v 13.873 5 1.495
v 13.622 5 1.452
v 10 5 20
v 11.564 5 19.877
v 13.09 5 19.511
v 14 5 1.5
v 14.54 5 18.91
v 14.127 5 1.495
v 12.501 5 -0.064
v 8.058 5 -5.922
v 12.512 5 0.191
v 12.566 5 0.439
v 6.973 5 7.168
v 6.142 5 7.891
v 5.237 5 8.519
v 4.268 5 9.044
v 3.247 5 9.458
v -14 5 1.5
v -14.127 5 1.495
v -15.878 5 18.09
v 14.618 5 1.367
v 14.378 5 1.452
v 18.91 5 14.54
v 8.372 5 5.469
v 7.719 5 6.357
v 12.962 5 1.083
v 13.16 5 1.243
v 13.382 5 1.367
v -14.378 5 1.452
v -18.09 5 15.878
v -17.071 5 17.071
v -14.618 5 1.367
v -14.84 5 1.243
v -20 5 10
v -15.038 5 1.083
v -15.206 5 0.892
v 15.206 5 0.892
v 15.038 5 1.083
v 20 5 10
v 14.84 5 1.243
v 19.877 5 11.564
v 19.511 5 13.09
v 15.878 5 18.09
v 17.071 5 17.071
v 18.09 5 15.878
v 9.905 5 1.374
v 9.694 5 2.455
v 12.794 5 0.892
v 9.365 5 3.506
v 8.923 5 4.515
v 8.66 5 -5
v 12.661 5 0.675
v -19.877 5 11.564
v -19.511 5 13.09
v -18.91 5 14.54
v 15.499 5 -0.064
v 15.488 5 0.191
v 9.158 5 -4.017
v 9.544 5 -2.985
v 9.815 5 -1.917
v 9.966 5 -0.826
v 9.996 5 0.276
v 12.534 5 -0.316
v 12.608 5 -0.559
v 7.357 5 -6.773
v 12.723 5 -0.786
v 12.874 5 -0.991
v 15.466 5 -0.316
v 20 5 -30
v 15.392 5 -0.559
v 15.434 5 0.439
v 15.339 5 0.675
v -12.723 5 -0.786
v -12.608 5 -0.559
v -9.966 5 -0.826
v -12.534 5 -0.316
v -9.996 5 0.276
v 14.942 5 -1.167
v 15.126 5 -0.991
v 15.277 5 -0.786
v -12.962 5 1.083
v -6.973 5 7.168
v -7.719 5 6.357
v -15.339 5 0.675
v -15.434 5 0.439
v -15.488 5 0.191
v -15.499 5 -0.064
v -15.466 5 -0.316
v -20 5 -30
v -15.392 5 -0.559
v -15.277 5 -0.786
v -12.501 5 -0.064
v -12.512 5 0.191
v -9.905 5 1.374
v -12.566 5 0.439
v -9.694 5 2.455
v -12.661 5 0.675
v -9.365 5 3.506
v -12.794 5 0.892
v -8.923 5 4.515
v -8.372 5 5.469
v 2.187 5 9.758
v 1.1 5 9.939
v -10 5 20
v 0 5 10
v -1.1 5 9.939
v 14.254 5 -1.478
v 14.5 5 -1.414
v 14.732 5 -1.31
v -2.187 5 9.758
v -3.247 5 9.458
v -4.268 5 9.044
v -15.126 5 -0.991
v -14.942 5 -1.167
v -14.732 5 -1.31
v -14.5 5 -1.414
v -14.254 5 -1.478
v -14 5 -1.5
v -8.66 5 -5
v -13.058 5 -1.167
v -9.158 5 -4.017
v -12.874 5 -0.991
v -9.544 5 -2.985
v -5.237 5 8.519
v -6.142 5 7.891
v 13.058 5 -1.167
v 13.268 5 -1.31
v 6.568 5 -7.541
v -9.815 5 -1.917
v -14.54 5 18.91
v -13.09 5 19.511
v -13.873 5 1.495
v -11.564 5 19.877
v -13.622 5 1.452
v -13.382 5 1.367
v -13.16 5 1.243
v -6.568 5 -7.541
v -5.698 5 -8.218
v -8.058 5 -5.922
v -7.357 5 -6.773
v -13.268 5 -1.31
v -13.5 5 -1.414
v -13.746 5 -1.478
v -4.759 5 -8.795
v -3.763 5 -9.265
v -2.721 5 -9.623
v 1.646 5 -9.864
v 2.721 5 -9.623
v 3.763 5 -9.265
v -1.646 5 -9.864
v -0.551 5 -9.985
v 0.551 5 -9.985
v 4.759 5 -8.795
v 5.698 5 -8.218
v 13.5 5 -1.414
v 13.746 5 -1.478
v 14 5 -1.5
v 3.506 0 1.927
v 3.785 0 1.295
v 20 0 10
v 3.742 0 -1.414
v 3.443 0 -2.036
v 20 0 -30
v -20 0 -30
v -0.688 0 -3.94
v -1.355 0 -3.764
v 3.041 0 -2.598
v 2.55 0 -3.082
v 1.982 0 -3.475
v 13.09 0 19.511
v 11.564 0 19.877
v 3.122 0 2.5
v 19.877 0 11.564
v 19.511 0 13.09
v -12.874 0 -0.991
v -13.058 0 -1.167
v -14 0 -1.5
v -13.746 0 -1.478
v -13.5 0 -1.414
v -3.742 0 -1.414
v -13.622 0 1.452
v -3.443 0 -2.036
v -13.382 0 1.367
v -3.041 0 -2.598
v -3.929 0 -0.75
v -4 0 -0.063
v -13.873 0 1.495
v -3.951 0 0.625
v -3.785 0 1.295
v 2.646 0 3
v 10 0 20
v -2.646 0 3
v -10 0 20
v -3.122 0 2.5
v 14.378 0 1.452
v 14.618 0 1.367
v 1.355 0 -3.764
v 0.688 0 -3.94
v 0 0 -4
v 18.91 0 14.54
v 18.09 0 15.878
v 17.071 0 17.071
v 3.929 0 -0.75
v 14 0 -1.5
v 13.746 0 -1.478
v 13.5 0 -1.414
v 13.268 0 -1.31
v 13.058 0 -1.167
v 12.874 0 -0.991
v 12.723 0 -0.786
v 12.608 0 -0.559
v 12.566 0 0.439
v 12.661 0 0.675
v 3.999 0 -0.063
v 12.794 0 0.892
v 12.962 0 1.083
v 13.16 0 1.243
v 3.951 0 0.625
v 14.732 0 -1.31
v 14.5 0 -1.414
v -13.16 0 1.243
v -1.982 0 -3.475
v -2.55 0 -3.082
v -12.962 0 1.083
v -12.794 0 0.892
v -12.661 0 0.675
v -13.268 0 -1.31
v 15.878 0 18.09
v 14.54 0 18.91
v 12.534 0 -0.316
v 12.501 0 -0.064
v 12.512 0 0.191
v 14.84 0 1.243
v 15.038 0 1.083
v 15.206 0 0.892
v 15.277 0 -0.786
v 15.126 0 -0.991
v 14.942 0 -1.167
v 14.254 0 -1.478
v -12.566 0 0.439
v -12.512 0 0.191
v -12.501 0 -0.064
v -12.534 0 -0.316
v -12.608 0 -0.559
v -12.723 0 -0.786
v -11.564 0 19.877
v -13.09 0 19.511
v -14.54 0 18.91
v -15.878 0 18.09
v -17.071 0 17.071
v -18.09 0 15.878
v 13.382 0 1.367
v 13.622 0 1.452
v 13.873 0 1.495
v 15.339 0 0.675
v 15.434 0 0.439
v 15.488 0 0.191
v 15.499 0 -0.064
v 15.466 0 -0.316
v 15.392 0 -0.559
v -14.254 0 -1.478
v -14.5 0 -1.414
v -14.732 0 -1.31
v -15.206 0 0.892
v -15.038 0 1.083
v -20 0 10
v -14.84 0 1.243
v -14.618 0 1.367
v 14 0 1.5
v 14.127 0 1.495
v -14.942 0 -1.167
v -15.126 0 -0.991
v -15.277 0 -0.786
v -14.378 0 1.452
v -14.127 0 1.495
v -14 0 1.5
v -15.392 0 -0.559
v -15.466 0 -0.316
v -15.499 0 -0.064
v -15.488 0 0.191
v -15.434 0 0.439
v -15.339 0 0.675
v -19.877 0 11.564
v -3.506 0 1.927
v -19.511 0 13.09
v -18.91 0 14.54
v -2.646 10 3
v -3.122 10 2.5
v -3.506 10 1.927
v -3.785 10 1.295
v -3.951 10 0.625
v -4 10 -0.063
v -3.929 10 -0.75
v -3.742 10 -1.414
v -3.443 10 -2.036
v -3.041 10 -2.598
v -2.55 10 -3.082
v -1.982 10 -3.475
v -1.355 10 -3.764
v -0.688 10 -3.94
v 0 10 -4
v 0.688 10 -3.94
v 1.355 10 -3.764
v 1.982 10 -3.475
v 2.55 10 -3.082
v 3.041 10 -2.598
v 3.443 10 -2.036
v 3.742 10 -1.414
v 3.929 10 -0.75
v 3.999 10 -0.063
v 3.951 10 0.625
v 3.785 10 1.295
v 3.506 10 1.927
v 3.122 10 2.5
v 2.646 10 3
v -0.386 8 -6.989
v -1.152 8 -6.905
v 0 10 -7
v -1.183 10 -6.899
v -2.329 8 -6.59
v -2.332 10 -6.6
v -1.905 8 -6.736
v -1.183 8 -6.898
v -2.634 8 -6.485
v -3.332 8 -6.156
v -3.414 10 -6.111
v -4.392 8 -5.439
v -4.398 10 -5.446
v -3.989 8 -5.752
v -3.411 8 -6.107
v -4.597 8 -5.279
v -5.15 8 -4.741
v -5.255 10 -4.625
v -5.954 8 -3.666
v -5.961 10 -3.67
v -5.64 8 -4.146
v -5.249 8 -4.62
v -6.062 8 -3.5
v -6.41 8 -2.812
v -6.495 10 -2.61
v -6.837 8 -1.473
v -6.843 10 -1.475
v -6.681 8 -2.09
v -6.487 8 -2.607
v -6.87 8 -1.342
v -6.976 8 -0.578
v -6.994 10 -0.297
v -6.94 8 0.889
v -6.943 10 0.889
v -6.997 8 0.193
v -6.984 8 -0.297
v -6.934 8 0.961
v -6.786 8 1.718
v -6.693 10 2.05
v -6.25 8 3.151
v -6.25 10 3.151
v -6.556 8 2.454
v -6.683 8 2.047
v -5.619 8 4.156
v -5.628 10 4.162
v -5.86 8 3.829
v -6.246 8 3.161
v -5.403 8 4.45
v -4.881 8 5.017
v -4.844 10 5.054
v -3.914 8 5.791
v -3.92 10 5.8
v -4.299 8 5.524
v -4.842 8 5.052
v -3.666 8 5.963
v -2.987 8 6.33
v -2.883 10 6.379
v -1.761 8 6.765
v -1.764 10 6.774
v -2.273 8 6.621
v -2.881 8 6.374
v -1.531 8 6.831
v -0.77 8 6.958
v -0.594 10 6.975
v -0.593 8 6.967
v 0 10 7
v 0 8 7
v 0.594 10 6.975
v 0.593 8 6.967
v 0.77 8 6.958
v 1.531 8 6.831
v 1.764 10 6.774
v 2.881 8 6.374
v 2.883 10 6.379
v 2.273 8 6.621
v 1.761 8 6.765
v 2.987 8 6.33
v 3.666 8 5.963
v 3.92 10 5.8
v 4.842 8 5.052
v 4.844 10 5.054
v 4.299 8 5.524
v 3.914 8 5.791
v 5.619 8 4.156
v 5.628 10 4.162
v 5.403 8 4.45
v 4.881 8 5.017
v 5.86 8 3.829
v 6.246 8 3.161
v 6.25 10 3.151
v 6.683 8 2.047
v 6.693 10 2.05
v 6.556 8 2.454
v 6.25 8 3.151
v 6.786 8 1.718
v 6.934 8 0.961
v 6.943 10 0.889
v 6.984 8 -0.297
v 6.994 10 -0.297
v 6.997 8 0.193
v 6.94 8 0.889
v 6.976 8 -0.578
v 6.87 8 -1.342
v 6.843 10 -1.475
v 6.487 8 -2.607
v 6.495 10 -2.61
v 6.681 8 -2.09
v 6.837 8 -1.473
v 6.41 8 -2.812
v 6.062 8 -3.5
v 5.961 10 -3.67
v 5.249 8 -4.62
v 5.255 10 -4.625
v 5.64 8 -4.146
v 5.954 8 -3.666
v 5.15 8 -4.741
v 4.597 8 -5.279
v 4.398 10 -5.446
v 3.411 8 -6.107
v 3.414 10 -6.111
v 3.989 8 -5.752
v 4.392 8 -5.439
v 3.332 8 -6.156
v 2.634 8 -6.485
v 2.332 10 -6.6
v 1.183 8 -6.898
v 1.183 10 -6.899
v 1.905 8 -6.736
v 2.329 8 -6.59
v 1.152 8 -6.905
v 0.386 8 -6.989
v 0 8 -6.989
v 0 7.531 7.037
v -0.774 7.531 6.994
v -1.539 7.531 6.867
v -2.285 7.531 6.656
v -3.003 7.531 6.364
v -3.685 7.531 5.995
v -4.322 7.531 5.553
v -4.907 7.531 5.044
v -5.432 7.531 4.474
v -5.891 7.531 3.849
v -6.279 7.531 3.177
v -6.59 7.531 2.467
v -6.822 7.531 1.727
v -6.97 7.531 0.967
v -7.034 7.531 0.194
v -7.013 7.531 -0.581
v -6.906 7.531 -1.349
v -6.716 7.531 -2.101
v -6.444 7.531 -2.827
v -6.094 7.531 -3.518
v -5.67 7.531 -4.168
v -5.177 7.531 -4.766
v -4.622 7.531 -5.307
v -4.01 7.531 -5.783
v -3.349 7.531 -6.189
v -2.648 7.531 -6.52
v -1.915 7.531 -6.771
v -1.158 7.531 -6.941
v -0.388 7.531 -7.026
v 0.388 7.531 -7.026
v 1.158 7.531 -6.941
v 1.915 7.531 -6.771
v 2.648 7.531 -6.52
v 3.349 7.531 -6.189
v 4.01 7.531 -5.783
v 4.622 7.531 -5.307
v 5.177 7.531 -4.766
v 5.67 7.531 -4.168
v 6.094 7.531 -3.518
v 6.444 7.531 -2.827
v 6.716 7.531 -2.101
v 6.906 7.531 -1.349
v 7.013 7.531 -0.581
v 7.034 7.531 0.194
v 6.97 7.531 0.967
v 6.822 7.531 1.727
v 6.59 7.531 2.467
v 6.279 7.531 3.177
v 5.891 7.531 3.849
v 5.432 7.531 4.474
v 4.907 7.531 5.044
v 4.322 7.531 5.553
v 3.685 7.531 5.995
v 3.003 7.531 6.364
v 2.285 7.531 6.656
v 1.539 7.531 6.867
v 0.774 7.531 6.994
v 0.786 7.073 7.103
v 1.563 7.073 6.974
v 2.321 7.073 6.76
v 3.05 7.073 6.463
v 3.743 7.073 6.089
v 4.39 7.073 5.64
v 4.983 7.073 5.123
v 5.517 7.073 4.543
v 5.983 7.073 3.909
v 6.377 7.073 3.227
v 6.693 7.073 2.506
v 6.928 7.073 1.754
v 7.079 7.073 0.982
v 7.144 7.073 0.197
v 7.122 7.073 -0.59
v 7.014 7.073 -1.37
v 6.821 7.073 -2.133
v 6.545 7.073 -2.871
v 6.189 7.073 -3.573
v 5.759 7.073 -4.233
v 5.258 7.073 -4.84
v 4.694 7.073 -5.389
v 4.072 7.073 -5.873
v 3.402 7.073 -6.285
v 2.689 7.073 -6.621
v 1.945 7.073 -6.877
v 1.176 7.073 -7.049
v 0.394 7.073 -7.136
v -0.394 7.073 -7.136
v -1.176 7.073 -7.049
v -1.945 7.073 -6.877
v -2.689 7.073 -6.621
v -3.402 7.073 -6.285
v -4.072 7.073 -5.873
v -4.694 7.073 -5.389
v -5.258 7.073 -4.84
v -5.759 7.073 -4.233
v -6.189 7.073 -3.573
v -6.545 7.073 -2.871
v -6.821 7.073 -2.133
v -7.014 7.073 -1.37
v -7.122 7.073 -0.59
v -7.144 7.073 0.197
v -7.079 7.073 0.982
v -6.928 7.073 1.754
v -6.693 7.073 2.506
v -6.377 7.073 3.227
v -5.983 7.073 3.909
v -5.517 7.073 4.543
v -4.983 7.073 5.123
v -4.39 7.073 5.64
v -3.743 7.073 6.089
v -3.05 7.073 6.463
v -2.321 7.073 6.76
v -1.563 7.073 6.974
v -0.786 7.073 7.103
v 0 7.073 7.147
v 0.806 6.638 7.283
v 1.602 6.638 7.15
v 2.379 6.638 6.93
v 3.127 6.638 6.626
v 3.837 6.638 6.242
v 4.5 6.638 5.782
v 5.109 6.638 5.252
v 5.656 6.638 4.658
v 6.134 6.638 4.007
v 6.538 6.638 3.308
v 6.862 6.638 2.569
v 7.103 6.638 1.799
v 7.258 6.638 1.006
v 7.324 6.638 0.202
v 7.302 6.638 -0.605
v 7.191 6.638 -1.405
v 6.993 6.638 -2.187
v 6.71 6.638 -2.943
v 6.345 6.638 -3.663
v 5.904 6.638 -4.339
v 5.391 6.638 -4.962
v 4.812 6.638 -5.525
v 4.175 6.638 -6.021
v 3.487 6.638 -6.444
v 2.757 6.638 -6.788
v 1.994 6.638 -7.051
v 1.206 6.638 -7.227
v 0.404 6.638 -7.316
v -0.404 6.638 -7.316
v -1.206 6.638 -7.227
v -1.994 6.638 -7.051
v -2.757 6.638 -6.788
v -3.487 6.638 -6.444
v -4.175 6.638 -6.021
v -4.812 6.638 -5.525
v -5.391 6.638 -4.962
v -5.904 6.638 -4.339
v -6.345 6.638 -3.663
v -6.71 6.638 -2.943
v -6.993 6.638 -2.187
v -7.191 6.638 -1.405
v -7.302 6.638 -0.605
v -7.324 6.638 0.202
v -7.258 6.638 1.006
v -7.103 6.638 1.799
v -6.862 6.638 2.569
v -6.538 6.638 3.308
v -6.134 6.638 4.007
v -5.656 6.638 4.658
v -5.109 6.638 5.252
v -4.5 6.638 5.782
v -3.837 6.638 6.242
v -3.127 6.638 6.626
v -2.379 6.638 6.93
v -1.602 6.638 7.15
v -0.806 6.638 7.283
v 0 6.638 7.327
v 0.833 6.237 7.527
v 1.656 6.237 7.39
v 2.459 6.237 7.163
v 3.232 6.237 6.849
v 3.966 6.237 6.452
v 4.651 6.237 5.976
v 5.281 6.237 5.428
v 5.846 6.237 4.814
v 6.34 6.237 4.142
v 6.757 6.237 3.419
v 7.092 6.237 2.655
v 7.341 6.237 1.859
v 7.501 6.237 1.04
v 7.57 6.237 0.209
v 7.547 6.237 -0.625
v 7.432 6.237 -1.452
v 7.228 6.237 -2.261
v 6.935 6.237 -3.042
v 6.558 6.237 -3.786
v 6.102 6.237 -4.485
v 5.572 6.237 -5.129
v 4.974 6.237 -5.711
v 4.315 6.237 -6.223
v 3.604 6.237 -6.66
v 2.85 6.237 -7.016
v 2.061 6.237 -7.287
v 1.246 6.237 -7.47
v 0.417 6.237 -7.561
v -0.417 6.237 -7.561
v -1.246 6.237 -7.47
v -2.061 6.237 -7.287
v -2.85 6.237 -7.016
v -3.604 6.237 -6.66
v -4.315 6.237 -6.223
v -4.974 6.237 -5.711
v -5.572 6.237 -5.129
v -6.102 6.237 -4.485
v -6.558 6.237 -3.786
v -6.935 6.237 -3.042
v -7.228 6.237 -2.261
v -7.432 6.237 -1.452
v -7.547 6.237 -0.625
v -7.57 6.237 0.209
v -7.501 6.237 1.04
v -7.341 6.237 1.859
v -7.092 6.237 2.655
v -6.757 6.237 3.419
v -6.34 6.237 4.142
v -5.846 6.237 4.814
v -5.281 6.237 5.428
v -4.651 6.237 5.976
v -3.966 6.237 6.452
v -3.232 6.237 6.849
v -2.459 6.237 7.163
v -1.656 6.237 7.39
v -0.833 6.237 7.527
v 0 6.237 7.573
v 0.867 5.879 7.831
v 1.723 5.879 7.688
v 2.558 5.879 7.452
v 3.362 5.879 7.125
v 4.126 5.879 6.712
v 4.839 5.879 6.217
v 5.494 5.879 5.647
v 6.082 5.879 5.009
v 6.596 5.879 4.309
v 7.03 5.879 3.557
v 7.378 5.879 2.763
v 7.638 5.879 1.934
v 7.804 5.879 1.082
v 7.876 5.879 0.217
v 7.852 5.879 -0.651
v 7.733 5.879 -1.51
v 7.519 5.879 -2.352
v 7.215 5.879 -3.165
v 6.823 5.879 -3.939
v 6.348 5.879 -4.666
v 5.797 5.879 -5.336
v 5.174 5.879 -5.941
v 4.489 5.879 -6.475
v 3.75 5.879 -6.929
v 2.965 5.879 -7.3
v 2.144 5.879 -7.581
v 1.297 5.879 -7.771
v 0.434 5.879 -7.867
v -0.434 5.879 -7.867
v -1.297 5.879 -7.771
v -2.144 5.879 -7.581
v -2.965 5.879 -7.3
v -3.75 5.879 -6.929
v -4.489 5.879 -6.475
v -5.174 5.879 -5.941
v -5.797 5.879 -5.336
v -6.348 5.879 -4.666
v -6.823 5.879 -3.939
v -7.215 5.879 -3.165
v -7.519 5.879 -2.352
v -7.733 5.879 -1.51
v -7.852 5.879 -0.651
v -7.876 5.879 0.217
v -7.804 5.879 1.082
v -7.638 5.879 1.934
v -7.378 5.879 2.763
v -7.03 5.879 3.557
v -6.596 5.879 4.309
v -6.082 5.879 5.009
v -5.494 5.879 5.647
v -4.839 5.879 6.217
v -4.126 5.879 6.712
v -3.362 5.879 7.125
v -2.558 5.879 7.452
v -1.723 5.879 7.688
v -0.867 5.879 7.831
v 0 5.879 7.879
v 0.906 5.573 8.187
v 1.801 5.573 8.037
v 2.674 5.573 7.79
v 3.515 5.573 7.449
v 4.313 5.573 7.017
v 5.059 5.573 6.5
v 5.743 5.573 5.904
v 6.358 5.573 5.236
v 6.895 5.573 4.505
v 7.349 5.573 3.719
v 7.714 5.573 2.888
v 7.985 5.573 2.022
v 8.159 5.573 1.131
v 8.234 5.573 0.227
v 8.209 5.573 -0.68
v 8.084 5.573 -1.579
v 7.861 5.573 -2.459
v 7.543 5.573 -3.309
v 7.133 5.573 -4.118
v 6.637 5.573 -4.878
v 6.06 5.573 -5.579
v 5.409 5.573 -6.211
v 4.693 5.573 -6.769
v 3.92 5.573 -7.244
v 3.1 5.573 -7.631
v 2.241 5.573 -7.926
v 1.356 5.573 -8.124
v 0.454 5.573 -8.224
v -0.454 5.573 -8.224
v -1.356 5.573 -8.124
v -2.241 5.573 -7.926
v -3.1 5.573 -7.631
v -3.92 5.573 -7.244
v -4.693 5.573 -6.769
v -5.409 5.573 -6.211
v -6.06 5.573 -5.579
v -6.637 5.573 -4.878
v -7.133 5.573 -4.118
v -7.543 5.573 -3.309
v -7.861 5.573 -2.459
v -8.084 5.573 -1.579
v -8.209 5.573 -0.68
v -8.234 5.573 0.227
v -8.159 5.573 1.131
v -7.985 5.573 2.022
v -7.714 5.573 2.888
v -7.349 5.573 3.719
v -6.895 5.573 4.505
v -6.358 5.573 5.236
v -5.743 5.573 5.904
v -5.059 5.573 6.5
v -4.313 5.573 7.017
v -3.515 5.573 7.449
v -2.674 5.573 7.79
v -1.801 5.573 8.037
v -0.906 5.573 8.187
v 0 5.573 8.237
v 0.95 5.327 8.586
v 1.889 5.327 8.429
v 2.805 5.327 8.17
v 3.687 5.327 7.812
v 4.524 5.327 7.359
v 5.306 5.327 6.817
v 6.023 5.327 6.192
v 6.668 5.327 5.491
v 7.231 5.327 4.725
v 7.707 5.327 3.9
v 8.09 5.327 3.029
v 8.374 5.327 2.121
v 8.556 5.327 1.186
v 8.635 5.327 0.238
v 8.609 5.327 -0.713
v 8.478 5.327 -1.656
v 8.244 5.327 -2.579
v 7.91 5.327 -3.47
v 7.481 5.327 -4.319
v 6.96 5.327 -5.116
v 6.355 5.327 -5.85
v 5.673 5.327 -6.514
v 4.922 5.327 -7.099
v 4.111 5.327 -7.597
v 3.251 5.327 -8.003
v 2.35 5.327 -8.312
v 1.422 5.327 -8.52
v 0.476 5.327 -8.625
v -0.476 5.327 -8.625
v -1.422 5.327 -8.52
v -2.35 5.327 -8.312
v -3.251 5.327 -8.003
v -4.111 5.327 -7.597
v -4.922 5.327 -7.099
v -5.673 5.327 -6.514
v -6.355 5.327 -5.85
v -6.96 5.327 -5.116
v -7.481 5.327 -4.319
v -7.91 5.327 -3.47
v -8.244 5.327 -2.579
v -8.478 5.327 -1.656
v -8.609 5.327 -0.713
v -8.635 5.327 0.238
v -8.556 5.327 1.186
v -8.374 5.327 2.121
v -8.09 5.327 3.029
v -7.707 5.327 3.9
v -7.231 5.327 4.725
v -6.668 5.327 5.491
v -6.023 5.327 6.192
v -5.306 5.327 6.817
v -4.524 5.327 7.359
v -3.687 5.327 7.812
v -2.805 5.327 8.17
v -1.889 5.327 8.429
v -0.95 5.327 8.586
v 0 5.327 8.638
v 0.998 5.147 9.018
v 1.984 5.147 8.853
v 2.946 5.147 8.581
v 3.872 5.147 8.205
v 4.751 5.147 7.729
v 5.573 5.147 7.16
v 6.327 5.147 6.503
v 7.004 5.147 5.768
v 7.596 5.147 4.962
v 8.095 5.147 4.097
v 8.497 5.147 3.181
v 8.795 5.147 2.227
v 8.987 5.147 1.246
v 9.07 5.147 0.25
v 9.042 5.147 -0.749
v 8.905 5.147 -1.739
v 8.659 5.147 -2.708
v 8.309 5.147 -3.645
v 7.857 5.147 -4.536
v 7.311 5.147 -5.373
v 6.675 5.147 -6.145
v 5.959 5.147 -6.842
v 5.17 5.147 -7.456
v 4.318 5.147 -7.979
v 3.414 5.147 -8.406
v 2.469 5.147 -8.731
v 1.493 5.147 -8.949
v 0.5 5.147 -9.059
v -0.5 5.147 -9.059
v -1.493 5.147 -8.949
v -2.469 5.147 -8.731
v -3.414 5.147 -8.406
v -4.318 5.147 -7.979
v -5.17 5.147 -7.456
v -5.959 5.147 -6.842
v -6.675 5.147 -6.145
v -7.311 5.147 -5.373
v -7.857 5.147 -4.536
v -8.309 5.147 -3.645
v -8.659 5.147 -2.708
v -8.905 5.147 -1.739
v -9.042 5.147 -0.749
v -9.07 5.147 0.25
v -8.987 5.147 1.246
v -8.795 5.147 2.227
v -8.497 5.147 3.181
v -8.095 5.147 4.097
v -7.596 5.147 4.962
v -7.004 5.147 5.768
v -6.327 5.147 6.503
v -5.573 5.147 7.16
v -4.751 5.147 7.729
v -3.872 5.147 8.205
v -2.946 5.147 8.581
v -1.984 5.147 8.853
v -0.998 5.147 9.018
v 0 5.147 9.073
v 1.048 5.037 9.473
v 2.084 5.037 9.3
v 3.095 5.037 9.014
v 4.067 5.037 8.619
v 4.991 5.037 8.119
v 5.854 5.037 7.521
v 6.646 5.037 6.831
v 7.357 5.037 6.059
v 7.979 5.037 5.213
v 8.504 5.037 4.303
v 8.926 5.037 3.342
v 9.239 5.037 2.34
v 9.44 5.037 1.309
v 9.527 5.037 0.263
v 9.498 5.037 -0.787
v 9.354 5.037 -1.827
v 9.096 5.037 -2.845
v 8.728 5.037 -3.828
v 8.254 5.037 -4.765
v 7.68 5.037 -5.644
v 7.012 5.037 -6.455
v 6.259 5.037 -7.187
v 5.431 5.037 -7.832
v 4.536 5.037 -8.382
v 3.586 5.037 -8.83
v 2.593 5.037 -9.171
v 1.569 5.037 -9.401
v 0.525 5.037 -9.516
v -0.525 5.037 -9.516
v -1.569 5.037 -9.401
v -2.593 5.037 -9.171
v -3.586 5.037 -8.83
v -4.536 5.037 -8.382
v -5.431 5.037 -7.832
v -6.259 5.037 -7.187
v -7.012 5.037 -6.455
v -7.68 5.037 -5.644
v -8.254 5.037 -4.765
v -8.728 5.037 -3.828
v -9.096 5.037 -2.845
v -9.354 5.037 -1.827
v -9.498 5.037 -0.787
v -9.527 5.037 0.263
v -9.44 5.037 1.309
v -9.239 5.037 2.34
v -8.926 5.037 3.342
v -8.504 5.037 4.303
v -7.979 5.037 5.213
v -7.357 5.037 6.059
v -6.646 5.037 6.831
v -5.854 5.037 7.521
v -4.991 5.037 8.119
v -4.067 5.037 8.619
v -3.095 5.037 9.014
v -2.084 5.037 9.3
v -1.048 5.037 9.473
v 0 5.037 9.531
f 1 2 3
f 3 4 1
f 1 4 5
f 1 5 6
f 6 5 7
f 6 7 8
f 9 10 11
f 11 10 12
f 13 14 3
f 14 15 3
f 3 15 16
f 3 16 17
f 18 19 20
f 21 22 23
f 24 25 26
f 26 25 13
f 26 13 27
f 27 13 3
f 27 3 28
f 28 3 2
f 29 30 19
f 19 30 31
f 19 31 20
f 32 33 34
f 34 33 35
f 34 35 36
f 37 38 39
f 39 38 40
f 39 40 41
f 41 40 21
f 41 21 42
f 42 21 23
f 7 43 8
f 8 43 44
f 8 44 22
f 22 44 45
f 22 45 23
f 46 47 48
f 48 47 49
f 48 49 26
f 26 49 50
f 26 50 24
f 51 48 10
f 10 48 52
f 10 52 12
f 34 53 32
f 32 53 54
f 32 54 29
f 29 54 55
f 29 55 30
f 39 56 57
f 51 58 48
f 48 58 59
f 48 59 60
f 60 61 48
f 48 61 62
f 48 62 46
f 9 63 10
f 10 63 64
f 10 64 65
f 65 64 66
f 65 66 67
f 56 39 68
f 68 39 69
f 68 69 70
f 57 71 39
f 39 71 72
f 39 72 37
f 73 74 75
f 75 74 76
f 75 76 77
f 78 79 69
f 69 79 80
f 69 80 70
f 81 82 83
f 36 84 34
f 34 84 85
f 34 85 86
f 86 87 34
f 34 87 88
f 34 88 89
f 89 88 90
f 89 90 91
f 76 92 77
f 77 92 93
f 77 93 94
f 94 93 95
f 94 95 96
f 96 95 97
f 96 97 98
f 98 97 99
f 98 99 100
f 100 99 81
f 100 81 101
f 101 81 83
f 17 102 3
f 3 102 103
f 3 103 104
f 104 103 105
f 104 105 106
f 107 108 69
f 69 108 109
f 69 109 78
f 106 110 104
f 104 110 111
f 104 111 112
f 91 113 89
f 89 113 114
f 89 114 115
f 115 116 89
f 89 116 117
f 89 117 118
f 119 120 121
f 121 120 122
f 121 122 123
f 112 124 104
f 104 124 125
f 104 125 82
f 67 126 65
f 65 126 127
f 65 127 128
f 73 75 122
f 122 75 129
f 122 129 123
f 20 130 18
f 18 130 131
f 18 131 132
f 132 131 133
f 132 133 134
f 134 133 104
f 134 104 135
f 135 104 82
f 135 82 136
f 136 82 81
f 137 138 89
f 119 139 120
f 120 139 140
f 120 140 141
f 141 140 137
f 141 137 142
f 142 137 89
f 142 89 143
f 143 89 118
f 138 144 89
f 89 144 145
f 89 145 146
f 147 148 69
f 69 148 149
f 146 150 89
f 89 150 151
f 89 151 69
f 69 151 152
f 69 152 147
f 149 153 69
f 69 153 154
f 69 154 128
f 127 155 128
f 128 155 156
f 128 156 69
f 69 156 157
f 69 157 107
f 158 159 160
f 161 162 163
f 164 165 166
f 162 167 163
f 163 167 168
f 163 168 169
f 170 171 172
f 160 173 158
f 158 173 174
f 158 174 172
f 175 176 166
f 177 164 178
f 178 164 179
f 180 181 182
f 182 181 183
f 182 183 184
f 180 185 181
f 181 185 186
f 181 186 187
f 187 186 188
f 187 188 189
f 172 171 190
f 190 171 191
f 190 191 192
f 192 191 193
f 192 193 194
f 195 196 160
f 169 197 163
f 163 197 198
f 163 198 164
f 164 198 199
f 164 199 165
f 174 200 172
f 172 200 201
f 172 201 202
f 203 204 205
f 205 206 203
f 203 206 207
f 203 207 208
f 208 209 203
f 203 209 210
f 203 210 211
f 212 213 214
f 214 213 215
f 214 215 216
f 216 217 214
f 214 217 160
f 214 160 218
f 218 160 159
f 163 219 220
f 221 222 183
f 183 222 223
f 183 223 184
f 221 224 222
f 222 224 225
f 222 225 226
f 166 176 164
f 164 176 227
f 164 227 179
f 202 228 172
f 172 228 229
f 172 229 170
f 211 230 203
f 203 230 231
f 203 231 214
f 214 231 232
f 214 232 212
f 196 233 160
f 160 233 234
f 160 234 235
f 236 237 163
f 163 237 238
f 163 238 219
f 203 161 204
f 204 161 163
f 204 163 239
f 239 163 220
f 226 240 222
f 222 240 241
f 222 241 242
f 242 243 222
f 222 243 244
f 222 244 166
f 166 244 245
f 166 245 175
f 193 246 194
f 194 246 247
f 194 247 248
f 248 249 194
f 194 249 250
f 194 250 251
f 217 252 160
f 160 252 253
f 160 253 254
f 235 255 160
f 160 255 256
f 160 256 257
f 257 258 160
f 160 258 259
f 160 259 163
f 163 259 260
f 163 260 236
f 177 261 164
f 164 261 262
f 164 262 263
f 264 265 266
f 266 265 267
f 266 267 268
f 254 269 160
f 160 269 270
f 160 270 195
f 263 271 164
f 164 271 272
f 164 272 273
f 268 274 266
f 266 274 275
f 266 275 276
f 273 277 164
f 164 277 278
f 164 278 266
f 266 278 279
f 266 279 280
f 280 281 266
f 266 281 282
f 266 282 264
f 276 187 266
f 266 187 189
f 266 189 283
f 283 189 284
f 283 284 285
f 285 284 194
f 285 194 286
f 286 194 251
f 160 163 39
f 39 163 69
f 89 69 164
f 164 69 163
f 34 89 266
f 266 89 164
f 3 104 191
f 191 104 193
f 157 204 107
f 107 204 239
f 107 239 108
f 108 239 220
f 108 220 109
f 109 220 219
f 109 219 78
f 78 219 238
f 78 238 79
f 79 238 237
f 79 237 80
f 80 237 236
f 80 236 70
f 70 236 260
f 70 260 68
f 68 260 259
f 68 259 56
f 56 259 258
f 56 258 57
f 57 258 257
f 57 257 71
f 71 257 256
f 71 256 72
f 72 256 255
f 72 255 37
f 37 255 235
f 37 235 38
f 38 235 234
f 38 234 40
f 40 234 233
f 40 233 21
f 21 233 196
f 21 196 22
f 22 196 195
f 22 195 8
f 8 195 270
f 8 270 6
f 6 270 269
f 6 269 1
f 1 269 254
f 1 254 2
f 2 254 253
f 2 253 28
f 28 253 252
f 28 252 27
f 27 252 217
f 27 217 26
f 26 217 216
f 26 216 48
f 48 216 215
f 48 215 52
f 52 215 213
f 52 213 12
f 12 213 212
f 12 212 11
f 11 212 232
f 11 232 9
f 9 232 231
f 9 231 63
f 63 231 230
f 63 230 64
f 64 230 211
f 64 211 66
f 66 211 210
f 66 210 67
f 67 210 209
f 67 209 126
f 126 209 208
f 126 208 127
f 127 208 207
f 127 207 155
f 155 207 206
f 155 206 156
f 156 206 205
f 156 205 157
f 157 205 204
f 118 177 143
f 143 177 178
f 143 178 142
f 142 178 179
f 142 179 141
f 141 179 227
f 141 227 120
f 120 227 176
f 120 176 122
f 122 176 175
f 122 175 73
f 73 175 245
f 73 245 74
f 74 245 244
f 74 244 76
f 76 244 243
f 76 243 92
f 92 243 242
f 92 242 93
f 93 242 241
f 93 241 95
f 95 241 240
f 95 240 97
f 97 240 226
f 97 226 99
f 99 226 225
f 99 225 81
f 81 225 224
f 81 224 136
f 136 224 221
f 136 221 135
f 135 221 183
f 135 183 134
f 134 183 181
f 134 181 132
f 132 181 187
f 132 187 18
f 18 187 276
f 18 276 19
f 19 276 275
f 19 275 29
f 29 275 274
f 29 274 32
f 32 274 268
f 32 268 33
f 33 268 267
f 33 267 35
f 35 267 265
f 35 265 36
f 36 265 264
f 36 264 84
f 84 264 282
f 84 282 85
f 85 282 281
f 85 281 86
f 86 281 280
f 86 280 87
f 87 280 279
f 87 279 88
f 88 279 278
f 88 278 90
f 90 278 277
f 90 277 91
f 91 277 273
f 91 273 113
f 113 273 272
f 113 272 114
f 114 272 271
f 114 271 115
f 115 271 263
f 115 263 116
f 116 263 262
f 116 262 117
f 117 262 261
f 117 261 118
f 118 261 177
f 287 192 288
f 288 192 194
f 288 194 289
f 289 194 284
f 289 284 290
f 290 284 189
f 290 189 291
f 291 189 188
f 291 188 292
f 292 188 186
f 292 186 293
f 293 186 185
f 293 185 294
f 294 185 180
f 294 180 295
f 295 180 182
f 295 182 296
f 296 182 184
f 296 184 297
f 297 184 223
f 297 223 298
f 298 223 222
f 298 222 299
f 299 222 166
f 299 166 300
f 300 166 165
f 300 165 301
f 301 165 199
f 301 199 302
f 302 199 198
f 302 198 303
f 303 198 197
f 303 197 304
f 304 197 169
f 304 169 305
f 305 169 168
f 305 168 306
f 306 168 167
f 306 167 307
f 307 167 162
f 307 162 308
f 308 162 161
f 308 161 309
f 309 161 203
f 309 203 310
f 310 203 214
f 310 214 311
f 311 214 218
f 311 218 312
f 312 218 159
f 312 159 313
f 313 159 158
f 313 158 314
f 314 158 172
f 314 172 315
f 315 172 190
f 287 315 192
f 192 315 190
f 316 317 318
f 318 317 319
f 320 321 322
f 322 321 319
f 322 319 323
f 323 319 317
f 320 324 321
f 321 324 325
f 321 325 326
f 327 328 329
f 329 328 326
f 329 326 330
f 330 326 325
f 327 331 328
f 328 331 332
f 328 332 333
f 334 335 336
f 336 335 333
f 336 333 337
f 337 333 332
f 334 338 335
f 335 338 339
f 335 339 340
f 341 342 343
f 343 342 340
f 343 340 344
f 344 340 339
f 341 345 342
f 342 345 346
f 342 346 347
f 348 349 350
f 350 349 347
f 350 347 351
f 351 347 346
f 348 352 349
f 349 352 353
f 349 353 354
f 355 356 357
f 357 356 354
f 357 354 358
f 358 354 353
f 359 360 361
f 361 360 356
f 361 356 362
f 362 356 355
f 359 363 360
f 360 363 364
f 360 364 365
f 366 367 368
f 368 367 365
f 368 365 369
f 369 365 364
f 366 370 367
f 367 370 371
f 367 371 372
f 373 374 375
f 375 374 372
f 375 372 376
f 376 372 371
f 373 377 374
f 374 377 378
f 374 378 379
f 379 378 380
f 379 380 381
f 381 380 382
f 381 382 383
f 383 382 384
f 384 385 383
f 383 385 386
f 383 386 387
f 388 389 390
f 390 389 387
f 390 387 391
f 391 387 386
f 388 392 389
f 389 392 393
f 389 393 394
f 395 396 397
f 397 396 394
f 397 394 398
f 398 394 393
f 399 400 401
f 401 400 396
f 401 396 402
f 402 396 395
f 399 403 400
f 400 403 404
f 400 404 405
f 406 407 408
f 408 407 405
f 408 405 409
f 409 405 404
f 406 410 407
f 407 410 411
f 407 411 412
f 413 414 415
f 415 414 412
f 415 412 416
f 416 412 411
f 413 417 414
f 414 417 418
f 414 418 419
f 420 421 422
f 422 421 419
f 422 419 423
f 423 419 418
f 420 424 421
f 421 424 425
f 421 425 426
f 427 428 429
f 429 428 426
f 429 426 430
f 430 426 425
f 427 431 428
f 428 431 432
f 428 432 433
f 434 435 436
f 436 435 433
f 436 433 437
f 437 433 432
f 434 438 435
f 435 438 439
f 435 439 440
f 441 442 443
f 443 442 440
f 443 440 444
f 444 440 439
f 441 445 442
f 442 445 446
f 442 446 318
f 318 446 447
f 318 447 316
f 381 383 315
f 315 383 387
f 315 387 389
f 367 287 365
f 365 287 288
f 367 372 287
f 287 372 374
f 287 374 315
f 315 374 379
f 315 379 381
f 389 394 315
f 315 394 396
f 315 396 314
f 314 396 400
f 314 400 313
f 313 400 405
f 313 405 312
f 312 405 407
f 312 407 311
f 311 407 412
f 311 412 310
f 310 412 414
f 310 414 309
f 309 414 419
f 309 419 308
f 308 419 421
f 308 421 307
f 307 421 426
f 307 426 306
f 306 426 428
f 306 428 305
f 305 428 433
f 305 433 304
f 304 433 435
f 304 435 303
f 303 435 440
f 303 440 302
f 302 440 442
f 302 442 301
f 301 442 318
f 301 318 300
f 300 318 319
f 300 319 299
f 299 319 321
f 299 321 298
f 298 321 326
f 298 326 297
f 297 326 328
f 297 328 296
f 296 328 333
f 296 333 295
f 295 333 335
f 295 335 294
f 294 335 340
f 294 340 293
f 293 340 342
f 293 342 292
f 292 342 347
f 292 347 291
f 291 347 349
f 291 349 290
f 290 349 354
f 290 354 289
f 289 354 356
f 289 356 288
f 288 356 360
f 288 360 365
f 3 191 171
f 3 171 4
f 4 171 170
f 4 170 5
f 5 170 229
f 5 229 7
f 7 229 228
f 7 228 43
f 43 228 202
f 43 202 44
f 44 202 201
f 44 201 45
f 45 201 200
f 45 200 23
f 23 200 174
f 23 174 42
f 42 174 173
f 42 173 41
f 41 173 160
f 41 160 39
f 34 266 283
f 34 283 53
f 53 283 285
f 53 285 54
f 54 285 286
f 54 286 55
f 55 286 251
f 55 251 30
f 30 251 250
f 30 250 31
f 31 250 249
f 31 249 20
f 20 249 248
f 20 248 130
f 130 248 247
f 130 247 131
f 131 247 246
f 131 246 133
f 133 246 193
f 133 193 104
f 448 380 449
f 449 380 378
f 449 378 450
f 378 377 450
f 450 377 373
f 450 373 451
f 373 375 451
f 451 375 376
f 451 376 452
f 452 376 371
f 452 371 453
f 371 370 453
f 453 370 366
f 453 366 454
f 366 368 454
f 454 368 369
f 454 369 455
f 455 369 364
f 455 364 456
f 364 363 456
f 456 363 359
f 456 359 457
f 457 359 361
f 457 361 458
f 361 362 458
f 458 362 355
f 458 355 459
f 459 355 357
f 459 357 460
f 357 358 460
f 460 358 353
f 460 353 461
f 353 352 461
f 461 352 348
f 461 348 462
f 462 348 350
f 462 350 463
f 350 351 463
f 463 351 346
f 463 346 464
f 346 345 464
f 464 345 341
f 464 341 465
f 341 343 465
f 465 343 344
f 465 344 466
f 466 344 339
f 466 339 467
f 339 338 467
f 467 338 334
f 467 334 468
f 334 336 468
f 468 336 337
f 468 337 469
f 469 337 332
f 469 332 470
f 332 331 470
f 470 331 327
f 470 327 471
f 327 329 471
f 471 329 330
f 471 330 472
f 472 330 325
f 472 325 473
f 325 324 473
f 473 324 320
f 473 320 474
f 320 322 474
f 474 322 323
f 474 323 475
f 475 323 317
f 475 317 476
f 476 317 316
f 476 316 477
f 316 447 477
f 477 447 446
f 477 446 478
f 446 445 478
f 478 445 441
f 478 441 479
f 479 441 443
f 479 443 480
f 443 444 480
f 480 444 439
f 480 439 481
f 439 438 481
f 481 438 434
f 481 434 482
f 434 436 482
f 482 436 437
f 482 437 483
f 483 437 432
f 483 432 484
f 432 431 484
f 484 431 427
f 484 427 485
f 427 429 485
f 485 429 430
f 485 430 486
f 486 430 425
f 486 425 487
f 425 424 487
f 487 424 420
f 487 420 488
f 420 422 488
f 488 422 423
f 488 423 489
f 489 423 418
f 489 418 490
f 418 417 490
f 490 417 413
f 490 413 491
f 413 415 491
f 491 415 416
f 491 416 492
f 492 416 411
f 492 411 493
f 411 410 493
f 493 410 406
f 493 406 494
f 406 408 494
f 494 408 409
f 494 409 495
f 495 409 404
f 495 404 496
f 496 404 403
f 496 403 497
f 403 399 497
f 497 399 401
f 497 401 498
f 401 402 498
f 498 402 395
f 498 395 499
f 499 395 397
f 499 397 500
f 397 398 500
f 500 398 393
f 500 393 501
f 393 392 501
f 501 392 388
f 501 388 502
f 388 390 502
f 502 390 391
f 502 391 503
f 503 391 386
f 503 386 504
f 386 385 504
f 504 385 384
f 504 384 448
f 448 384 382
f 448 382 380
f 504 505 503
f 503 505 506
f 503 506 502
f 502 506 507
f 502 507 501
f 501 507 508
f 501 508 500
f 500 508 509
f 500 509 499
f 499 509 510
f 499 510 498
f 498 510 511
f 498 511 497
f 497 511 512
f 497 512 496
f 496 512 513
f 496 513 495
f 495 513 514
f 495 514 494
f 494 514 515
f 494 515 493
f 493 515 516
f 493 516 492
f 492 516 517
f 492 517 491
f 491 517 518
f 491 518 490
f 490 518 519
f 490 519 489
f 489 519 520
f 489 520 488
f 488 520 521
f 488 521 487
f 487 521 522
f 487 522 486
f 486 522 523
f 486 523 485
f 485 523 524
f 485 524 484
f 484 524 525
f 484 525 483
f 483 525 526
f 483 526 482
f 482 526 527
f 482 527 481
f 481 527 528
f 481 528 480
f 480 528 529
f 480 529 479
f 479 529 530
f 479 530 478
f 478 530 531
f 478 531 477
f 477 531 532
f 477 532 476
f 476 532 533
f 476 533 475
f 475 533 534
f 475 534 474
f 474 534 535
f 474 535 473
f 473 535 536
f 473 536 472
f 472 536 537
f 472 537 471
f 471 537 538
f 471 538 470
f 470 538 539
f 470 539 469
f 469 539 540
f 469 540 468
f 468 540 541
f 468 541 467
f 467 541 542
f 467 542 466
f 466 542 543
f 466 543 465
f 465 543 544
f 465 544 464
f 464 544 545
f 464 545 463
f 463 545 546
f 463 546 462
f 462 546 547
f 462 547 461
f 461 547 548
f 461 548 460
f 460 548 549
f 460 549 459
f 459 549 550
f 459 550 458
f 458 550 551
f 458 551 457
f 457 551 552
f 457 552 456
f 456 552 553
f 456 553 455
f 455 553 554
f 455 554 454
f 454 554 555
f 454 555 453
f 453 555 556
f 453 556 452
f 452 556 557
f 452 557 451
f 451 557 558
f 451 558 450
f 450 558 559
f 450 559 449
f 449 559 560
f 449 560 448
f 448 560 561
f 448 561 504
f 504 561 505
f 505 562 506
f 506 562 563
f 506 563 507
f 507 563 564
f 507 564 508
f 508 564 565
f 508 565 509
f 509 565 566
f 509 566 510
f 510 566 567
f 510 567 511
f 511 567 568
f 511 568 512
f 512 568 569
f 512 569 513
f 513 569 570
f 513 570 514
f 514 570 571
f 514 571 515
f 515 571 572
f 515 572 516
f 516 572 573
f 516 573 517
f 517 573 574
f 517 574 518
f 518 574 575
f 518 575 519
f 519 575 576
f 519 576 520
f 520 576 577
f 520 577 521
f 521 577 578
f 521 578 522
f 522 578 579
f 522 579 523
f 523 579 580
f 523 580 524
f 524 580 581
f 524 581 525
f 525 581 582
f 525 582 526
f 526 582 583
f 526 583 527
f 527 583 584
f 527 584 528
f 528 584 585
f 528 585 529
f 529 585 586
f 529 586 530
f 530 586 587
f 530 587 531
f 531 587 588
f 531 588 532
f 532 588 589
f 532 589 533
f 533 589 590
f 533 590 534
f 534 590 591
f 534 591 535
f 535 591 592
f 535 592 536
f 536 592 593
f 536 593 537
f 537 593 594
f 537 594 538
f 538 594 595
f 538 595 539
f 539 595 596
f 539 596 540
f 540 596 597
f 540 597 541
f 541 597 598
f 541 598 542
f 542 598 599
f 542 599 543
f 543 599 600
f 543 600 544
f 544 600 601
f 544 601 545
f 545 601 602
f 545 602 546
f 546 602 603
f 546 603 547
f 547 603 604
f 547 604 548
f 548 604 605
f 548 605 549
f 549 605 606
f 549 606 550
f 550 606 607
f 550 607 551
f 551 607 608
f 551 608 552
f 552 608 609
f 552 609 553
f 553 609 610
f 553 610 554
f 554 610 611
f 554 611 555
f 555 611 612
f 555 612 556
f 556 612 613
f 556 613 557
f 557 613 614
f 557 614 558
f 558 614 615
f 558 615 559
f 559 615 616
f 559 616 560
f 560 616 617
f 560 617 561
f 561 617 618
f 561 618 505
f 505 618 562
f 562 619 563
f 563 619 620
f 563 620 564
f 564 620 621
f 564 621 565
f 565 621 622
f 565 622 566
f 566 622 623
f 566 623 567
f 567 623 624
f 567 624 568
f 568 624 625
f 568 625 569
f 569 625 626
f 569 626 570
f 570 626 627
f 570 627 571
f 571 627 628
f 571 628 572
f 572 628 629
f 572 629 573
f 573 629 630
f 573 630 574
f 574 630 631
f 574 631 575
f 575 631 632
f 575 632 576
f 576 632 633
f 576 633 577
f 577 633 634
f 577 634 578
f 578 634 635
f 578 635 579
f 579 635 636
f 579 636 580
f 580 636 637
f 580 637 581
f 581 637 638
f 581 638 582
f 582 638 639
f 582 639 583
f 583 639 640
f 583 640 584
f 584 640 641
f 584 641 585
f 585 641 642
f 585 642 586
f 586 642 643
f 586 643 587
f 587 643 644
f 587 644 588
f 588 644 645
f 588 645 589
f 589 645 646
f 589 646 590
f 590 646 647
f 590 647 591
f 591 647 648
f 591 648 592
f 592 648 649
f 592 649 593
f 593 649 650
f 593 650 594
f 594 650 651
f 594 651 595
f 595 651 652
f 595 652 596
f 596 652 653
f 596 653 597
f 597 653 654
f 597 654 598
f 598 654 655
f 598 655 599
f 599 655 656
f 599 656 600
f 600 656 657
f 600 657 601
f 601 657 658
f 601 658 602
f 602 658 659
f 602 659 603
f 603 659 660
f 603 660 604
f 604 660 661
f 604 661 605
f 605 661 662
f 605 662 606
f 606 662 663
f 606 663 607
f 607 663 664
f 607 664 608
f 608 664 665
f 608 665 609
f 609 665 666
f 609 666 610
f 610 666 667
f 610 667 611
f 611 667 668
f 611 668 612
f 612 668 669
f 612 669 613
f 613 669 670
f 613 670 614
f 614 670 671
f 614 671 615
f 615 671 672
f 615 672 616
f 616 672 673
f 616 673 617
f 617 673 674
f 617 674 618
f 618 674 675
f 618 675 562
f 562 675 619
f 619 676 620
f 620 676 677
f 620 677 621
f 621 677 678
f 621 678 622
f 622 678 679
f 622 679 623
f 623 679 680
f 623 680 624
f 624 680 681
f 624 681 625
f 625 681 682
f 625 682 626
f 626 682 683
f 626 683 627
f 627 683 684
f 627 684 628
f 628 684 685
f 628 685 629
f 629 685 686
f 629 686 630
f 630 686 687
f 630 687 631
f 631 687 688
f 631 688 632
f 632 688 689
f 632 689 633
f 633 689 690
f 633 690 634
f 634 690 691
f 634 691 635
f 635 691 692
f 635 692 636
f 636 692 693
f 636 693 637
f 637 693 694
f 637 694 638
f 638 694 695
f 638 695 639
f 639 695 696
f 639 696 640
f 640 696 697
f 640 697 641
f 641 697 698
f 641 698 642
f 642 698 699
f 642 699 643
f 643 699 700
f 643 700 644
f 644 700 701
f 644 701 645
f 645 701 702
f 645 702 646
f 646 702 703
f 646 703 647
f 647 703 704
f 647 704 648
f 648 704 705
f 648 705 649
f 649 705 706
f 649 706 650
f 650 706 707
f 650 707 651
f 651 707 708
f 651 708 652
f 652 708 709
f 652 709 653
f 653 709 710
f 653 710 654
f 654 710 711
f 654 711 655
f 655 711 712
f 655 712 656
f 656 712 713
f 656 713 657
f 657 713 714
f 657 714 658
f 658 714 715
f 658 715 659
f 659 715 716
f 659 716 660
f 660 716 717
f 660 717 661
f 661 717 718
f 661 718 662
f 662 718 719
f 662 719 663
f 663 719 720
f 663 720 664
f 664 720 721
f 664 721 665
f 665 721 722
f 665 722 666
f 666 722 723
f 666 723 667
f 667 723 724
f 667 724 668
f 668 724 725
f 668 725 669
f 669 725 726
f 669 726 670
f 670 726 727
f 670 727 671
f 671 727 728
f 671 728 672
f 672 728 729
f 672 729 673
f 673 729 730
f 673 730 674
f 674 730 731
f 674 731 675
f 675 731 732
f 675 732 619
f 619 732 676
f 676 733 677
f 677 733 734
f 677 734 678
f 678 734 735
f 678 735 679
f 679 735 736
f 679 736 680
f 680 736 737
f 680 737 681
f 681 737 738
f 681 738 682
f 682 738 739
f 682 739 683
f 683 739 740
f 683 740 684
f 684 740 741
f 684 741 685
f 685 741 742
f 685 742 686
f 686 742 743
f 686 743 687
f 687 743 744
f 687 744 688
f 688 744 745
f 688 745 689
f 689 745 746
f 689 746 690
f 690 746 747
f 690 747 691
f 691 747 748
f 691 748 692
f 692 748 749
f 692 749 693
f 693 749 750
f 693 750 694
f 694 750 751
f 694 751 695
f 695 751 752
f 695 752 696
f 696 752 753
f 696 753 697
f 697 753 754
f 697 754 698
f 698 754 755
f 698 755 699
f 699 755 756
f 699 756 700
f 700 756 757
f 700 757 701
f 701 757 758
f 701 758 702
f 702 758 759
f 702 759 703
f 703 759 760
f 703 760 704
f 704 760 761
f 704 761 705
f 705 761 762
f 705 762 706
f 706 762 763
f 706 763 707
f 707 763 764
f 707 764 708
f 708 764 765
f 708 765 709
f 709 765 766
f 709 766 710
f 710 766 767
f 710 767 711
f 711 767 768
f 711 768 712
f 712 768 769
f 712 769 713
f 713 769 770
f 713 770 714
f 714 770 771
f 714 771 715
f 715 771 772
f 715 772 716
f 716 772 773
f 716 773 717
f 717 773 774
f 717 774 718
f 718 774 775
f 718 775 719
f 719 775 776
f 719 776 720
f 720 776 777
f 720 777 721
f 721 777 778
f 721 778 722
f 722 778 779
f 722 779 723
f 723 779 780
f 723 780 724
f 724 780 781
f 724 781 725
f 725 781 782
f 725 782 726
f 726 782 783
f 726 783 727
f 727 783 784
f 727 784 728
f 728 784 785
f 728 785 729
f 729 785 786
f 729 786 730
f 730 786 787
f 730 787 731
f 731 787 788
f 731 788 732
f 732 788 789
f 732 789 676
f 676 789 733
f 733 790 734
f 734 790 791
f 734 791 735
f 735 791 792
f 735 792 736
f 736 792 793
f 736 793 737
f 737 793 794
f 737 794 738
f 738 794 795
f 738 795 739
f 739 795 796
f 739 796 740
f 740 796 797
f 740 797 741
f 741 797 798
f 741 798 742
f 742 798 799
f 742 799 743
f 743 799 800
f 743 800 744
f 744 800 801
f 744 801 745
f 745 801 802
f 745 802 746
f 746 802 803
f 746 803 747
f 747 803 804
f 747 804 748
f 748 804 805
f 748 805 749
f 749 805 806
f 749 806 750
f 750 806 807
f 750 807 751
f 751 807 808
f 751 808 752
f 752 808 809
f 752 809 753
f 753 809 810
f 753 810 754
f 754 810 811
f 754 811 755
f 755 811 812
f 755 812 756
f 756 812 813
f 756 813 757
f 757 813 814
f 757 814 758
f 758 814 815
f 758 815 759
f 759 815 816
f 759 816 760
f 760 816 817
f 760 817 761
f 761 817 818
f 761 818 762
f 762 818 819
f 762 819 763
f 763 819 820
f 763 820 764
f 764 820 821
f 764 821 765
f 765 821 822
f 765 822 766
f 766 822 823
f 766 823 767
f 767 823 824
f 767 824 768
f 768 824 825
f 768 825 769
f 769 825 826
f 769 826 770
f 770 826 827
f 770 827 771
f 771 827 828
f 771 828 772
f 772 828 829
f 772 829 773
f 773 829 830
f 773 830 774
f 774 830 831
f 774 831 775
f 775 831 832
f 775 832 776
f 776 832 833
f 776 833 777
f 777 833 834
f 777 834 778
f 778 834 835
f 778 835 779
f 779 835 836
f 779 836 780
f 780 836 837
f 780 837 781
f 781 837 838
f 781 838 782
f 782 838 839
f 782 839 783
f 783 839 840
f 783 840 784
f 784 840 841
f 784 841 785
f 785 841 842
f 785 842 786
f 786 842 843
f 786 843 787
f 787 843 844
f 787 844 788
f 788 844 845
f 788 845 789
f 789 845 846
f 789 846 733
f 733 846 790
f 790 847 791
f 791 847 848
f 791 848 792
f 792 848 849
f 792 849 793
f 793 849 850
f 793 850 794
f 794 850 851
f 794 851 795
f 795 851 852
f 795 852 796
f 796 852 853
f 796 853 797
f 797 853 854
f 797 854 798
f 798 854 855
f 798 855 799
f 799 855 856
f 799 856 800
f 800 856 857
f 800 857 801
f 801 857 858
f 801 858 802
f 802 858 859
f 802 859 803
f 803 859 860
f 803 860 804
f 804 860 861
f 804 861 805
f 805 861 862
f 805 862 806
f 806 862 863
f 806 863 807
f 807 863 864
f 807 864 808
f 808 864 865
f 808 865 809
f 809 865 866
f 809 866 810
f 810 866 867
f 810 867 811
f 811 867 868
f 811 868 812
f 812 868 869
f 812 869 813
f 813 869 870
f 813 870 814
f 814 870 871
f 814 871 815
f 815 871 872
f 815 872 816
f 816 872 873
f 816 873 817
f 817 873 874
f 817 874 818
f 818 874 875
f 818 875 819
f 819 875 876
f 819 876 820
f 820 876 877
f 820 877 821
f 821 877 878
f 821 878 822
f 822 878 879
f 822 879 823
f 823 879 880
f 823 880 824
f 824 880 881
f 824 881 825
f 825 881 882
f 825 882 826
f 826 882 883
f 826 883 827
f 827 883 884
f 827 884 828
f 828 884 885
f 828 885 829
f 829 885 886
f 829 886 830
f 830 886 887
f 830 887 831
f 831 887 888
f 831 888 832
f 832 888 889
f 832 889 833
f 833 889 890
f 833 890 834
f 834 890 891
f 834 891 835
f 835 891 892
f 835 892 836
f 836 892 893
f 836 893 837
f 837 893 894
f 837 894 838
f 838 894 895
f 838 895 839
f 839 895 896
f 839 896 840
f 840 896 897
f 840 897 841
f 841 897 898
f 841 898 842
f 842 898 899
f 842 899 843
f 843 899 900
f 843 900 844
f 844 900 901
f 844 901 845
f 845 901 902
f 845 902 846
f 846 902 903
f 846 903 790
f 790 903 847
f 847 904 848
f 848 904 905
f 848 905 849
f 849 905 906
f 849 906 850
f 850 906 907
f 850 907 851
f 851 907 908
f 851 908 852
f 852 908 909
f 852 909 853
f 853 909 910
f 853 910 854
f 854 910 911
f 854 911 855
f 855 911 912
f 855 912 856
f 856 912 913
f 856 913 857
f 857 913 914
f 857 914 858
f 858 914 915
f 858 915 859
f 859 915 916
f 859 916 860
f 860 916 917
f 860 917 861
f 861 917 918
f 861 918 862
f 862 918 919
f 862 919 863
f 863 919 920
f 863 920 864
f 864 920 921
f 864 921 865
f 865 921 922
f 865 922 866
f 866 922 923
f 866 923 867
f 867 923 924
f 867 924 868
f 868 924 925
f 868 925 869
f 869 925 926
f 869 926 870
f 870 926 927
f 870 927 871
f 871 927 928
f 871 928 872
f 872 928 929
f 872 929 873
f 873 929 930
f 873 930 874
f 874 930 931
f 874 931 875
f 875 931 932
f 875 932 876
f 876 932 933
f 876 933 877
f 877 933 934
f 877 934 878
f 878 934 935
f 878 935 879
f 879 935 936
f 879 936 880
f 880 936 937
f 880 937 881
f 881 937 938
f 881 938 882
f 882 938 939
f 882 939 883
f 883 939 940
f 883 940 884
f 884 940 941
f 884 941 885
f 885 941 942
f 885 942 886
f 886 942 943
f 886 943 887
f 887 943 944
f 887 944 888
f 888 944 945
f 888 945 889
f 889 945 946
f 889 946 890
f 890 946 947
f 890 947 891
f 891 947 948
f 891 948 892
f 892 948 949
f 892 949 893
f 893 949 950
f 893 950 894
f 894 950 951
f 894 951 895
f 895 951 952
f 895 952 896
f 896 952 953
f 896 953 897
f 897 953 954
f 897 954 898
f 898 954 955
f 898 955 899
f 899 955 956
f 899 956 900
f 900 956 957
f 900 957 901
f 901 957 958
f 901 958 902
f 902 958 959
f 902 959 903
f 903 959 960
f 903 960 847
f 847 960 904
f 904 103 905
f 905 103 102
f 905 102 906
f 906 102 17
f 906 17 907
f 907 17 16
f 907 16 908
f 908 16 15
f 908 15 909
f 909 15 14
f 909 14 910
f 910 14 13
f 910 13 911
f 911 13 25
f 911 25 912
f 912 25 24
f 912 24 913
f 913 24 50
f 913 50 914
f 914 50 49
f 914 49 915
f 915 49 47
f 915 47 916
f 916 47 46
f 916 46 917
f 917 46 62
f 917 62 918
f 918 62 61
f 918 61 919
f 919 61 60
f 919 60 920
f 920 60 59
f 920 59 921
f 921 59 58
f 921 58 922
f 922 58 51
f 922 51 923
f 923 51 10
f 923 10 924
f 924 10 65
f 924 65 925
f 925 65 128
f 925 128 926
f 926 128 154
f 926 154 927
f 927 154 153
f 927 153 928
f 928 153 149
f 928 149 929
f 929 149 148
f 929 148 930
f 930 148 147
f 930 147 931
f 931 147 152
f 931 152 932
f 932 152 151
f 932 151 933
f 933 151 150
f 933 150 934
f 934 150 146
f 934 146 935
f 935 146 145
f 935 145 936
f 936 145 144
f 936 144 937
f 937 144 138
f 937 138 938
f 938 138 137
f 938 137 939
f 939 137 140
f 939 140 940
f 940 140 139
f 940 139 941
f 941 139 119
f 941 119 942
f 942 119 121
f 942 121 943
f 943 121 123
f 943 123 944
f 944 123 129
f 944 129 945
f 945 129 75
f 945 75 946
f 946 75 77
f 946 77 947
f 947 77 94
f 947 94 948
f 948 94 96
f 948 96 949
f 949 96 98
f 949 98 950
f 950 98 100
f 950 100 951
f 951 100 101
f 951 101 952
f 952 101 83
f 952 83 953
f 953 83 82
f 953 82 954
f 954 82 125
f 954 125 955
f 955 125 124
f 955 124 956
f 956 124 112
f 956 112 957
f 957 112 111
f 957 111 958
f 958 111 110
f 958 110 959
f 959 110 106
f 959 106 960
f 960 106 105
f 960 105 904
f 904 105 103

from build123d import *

# Parameters (mm, degrees)
SKETCH1_R           = 1.5
BOSS_EXTRUDE1_DEPTH = 5
SKETCH2_R           = 7
BOSS_EXTRUDE2_DEPTH = 5
FILLET1_R           = 10
FILLET2_R           = 3


with BuildPart() as part:
    # Sketch1 → Boss-Extrude1 (new body)
    with BuildSketch(Plane(origin=(0, 0, 0), x_dir=(1, 0, 0), z_dir=(0, 1, 0))):
        Polygon((-20, 20), (-20, -20), (20, -20), (20, 20), (20, 30), (-20, 30), align=None)
        with Locations(Location((14, 0, 0), (0, 0, 270))):
            Circle(SKETCH1_R, mode=Mode.SUBTRACT)
        with Locations(Location((-14, 0, 0), (0, 0, 270))):
            Circle(SKETCH1_R, mode=Mode.SUBTRACT)
        with BuildLine():
            Line((-2.645751311, -3), (2.645751311, -3))
            ThreePointArc((2.645751311, -3), (0, 4), (-2.645751311, -3))
        make_face(mode=Mode.SUBTRACT)
    extrude(amount=BOSS_EXTRUDE1_DEPTH)

    # Sketch2 → Boss-Extrude2 (add)
    with BuildSketch(Plane(origin=(0, 5, 0), x_dir=(1, 0, 0), z_dir=(0, 1, 0))):
        with Locations(Location((0, 0, 0), (0, 0, 270))):
            Circle(SKETCH2_R)
        with BuildLine():
            ThreePointArc((-2.645751311, -3), (0, 4), (2.645751311, -3))
            Line((2.645751311, -3), (-2.645751311, -3))
        make_face(mode=Mode.SUBTRACT)
    extrude(amount=BOSS_EXTRUDE2_DEPTH)

    # Fillet1
    fillet1_edges = [part.edges().sort_by_distance(p)[0] for p in [
        (20, 2.5, 20),
        (-20, 2.5, 20),
    ]]
    fillet(fillet1_edges, radius=FILLET1_R)

    # Fillet2
    fillet2_edges = [part.edges().sort_by_distance(p)[0] for p in [
        (0, 5, -7),
    ]]
    fillet(fillet2_edges, radius=FILLET2_R)


solid = part.part
